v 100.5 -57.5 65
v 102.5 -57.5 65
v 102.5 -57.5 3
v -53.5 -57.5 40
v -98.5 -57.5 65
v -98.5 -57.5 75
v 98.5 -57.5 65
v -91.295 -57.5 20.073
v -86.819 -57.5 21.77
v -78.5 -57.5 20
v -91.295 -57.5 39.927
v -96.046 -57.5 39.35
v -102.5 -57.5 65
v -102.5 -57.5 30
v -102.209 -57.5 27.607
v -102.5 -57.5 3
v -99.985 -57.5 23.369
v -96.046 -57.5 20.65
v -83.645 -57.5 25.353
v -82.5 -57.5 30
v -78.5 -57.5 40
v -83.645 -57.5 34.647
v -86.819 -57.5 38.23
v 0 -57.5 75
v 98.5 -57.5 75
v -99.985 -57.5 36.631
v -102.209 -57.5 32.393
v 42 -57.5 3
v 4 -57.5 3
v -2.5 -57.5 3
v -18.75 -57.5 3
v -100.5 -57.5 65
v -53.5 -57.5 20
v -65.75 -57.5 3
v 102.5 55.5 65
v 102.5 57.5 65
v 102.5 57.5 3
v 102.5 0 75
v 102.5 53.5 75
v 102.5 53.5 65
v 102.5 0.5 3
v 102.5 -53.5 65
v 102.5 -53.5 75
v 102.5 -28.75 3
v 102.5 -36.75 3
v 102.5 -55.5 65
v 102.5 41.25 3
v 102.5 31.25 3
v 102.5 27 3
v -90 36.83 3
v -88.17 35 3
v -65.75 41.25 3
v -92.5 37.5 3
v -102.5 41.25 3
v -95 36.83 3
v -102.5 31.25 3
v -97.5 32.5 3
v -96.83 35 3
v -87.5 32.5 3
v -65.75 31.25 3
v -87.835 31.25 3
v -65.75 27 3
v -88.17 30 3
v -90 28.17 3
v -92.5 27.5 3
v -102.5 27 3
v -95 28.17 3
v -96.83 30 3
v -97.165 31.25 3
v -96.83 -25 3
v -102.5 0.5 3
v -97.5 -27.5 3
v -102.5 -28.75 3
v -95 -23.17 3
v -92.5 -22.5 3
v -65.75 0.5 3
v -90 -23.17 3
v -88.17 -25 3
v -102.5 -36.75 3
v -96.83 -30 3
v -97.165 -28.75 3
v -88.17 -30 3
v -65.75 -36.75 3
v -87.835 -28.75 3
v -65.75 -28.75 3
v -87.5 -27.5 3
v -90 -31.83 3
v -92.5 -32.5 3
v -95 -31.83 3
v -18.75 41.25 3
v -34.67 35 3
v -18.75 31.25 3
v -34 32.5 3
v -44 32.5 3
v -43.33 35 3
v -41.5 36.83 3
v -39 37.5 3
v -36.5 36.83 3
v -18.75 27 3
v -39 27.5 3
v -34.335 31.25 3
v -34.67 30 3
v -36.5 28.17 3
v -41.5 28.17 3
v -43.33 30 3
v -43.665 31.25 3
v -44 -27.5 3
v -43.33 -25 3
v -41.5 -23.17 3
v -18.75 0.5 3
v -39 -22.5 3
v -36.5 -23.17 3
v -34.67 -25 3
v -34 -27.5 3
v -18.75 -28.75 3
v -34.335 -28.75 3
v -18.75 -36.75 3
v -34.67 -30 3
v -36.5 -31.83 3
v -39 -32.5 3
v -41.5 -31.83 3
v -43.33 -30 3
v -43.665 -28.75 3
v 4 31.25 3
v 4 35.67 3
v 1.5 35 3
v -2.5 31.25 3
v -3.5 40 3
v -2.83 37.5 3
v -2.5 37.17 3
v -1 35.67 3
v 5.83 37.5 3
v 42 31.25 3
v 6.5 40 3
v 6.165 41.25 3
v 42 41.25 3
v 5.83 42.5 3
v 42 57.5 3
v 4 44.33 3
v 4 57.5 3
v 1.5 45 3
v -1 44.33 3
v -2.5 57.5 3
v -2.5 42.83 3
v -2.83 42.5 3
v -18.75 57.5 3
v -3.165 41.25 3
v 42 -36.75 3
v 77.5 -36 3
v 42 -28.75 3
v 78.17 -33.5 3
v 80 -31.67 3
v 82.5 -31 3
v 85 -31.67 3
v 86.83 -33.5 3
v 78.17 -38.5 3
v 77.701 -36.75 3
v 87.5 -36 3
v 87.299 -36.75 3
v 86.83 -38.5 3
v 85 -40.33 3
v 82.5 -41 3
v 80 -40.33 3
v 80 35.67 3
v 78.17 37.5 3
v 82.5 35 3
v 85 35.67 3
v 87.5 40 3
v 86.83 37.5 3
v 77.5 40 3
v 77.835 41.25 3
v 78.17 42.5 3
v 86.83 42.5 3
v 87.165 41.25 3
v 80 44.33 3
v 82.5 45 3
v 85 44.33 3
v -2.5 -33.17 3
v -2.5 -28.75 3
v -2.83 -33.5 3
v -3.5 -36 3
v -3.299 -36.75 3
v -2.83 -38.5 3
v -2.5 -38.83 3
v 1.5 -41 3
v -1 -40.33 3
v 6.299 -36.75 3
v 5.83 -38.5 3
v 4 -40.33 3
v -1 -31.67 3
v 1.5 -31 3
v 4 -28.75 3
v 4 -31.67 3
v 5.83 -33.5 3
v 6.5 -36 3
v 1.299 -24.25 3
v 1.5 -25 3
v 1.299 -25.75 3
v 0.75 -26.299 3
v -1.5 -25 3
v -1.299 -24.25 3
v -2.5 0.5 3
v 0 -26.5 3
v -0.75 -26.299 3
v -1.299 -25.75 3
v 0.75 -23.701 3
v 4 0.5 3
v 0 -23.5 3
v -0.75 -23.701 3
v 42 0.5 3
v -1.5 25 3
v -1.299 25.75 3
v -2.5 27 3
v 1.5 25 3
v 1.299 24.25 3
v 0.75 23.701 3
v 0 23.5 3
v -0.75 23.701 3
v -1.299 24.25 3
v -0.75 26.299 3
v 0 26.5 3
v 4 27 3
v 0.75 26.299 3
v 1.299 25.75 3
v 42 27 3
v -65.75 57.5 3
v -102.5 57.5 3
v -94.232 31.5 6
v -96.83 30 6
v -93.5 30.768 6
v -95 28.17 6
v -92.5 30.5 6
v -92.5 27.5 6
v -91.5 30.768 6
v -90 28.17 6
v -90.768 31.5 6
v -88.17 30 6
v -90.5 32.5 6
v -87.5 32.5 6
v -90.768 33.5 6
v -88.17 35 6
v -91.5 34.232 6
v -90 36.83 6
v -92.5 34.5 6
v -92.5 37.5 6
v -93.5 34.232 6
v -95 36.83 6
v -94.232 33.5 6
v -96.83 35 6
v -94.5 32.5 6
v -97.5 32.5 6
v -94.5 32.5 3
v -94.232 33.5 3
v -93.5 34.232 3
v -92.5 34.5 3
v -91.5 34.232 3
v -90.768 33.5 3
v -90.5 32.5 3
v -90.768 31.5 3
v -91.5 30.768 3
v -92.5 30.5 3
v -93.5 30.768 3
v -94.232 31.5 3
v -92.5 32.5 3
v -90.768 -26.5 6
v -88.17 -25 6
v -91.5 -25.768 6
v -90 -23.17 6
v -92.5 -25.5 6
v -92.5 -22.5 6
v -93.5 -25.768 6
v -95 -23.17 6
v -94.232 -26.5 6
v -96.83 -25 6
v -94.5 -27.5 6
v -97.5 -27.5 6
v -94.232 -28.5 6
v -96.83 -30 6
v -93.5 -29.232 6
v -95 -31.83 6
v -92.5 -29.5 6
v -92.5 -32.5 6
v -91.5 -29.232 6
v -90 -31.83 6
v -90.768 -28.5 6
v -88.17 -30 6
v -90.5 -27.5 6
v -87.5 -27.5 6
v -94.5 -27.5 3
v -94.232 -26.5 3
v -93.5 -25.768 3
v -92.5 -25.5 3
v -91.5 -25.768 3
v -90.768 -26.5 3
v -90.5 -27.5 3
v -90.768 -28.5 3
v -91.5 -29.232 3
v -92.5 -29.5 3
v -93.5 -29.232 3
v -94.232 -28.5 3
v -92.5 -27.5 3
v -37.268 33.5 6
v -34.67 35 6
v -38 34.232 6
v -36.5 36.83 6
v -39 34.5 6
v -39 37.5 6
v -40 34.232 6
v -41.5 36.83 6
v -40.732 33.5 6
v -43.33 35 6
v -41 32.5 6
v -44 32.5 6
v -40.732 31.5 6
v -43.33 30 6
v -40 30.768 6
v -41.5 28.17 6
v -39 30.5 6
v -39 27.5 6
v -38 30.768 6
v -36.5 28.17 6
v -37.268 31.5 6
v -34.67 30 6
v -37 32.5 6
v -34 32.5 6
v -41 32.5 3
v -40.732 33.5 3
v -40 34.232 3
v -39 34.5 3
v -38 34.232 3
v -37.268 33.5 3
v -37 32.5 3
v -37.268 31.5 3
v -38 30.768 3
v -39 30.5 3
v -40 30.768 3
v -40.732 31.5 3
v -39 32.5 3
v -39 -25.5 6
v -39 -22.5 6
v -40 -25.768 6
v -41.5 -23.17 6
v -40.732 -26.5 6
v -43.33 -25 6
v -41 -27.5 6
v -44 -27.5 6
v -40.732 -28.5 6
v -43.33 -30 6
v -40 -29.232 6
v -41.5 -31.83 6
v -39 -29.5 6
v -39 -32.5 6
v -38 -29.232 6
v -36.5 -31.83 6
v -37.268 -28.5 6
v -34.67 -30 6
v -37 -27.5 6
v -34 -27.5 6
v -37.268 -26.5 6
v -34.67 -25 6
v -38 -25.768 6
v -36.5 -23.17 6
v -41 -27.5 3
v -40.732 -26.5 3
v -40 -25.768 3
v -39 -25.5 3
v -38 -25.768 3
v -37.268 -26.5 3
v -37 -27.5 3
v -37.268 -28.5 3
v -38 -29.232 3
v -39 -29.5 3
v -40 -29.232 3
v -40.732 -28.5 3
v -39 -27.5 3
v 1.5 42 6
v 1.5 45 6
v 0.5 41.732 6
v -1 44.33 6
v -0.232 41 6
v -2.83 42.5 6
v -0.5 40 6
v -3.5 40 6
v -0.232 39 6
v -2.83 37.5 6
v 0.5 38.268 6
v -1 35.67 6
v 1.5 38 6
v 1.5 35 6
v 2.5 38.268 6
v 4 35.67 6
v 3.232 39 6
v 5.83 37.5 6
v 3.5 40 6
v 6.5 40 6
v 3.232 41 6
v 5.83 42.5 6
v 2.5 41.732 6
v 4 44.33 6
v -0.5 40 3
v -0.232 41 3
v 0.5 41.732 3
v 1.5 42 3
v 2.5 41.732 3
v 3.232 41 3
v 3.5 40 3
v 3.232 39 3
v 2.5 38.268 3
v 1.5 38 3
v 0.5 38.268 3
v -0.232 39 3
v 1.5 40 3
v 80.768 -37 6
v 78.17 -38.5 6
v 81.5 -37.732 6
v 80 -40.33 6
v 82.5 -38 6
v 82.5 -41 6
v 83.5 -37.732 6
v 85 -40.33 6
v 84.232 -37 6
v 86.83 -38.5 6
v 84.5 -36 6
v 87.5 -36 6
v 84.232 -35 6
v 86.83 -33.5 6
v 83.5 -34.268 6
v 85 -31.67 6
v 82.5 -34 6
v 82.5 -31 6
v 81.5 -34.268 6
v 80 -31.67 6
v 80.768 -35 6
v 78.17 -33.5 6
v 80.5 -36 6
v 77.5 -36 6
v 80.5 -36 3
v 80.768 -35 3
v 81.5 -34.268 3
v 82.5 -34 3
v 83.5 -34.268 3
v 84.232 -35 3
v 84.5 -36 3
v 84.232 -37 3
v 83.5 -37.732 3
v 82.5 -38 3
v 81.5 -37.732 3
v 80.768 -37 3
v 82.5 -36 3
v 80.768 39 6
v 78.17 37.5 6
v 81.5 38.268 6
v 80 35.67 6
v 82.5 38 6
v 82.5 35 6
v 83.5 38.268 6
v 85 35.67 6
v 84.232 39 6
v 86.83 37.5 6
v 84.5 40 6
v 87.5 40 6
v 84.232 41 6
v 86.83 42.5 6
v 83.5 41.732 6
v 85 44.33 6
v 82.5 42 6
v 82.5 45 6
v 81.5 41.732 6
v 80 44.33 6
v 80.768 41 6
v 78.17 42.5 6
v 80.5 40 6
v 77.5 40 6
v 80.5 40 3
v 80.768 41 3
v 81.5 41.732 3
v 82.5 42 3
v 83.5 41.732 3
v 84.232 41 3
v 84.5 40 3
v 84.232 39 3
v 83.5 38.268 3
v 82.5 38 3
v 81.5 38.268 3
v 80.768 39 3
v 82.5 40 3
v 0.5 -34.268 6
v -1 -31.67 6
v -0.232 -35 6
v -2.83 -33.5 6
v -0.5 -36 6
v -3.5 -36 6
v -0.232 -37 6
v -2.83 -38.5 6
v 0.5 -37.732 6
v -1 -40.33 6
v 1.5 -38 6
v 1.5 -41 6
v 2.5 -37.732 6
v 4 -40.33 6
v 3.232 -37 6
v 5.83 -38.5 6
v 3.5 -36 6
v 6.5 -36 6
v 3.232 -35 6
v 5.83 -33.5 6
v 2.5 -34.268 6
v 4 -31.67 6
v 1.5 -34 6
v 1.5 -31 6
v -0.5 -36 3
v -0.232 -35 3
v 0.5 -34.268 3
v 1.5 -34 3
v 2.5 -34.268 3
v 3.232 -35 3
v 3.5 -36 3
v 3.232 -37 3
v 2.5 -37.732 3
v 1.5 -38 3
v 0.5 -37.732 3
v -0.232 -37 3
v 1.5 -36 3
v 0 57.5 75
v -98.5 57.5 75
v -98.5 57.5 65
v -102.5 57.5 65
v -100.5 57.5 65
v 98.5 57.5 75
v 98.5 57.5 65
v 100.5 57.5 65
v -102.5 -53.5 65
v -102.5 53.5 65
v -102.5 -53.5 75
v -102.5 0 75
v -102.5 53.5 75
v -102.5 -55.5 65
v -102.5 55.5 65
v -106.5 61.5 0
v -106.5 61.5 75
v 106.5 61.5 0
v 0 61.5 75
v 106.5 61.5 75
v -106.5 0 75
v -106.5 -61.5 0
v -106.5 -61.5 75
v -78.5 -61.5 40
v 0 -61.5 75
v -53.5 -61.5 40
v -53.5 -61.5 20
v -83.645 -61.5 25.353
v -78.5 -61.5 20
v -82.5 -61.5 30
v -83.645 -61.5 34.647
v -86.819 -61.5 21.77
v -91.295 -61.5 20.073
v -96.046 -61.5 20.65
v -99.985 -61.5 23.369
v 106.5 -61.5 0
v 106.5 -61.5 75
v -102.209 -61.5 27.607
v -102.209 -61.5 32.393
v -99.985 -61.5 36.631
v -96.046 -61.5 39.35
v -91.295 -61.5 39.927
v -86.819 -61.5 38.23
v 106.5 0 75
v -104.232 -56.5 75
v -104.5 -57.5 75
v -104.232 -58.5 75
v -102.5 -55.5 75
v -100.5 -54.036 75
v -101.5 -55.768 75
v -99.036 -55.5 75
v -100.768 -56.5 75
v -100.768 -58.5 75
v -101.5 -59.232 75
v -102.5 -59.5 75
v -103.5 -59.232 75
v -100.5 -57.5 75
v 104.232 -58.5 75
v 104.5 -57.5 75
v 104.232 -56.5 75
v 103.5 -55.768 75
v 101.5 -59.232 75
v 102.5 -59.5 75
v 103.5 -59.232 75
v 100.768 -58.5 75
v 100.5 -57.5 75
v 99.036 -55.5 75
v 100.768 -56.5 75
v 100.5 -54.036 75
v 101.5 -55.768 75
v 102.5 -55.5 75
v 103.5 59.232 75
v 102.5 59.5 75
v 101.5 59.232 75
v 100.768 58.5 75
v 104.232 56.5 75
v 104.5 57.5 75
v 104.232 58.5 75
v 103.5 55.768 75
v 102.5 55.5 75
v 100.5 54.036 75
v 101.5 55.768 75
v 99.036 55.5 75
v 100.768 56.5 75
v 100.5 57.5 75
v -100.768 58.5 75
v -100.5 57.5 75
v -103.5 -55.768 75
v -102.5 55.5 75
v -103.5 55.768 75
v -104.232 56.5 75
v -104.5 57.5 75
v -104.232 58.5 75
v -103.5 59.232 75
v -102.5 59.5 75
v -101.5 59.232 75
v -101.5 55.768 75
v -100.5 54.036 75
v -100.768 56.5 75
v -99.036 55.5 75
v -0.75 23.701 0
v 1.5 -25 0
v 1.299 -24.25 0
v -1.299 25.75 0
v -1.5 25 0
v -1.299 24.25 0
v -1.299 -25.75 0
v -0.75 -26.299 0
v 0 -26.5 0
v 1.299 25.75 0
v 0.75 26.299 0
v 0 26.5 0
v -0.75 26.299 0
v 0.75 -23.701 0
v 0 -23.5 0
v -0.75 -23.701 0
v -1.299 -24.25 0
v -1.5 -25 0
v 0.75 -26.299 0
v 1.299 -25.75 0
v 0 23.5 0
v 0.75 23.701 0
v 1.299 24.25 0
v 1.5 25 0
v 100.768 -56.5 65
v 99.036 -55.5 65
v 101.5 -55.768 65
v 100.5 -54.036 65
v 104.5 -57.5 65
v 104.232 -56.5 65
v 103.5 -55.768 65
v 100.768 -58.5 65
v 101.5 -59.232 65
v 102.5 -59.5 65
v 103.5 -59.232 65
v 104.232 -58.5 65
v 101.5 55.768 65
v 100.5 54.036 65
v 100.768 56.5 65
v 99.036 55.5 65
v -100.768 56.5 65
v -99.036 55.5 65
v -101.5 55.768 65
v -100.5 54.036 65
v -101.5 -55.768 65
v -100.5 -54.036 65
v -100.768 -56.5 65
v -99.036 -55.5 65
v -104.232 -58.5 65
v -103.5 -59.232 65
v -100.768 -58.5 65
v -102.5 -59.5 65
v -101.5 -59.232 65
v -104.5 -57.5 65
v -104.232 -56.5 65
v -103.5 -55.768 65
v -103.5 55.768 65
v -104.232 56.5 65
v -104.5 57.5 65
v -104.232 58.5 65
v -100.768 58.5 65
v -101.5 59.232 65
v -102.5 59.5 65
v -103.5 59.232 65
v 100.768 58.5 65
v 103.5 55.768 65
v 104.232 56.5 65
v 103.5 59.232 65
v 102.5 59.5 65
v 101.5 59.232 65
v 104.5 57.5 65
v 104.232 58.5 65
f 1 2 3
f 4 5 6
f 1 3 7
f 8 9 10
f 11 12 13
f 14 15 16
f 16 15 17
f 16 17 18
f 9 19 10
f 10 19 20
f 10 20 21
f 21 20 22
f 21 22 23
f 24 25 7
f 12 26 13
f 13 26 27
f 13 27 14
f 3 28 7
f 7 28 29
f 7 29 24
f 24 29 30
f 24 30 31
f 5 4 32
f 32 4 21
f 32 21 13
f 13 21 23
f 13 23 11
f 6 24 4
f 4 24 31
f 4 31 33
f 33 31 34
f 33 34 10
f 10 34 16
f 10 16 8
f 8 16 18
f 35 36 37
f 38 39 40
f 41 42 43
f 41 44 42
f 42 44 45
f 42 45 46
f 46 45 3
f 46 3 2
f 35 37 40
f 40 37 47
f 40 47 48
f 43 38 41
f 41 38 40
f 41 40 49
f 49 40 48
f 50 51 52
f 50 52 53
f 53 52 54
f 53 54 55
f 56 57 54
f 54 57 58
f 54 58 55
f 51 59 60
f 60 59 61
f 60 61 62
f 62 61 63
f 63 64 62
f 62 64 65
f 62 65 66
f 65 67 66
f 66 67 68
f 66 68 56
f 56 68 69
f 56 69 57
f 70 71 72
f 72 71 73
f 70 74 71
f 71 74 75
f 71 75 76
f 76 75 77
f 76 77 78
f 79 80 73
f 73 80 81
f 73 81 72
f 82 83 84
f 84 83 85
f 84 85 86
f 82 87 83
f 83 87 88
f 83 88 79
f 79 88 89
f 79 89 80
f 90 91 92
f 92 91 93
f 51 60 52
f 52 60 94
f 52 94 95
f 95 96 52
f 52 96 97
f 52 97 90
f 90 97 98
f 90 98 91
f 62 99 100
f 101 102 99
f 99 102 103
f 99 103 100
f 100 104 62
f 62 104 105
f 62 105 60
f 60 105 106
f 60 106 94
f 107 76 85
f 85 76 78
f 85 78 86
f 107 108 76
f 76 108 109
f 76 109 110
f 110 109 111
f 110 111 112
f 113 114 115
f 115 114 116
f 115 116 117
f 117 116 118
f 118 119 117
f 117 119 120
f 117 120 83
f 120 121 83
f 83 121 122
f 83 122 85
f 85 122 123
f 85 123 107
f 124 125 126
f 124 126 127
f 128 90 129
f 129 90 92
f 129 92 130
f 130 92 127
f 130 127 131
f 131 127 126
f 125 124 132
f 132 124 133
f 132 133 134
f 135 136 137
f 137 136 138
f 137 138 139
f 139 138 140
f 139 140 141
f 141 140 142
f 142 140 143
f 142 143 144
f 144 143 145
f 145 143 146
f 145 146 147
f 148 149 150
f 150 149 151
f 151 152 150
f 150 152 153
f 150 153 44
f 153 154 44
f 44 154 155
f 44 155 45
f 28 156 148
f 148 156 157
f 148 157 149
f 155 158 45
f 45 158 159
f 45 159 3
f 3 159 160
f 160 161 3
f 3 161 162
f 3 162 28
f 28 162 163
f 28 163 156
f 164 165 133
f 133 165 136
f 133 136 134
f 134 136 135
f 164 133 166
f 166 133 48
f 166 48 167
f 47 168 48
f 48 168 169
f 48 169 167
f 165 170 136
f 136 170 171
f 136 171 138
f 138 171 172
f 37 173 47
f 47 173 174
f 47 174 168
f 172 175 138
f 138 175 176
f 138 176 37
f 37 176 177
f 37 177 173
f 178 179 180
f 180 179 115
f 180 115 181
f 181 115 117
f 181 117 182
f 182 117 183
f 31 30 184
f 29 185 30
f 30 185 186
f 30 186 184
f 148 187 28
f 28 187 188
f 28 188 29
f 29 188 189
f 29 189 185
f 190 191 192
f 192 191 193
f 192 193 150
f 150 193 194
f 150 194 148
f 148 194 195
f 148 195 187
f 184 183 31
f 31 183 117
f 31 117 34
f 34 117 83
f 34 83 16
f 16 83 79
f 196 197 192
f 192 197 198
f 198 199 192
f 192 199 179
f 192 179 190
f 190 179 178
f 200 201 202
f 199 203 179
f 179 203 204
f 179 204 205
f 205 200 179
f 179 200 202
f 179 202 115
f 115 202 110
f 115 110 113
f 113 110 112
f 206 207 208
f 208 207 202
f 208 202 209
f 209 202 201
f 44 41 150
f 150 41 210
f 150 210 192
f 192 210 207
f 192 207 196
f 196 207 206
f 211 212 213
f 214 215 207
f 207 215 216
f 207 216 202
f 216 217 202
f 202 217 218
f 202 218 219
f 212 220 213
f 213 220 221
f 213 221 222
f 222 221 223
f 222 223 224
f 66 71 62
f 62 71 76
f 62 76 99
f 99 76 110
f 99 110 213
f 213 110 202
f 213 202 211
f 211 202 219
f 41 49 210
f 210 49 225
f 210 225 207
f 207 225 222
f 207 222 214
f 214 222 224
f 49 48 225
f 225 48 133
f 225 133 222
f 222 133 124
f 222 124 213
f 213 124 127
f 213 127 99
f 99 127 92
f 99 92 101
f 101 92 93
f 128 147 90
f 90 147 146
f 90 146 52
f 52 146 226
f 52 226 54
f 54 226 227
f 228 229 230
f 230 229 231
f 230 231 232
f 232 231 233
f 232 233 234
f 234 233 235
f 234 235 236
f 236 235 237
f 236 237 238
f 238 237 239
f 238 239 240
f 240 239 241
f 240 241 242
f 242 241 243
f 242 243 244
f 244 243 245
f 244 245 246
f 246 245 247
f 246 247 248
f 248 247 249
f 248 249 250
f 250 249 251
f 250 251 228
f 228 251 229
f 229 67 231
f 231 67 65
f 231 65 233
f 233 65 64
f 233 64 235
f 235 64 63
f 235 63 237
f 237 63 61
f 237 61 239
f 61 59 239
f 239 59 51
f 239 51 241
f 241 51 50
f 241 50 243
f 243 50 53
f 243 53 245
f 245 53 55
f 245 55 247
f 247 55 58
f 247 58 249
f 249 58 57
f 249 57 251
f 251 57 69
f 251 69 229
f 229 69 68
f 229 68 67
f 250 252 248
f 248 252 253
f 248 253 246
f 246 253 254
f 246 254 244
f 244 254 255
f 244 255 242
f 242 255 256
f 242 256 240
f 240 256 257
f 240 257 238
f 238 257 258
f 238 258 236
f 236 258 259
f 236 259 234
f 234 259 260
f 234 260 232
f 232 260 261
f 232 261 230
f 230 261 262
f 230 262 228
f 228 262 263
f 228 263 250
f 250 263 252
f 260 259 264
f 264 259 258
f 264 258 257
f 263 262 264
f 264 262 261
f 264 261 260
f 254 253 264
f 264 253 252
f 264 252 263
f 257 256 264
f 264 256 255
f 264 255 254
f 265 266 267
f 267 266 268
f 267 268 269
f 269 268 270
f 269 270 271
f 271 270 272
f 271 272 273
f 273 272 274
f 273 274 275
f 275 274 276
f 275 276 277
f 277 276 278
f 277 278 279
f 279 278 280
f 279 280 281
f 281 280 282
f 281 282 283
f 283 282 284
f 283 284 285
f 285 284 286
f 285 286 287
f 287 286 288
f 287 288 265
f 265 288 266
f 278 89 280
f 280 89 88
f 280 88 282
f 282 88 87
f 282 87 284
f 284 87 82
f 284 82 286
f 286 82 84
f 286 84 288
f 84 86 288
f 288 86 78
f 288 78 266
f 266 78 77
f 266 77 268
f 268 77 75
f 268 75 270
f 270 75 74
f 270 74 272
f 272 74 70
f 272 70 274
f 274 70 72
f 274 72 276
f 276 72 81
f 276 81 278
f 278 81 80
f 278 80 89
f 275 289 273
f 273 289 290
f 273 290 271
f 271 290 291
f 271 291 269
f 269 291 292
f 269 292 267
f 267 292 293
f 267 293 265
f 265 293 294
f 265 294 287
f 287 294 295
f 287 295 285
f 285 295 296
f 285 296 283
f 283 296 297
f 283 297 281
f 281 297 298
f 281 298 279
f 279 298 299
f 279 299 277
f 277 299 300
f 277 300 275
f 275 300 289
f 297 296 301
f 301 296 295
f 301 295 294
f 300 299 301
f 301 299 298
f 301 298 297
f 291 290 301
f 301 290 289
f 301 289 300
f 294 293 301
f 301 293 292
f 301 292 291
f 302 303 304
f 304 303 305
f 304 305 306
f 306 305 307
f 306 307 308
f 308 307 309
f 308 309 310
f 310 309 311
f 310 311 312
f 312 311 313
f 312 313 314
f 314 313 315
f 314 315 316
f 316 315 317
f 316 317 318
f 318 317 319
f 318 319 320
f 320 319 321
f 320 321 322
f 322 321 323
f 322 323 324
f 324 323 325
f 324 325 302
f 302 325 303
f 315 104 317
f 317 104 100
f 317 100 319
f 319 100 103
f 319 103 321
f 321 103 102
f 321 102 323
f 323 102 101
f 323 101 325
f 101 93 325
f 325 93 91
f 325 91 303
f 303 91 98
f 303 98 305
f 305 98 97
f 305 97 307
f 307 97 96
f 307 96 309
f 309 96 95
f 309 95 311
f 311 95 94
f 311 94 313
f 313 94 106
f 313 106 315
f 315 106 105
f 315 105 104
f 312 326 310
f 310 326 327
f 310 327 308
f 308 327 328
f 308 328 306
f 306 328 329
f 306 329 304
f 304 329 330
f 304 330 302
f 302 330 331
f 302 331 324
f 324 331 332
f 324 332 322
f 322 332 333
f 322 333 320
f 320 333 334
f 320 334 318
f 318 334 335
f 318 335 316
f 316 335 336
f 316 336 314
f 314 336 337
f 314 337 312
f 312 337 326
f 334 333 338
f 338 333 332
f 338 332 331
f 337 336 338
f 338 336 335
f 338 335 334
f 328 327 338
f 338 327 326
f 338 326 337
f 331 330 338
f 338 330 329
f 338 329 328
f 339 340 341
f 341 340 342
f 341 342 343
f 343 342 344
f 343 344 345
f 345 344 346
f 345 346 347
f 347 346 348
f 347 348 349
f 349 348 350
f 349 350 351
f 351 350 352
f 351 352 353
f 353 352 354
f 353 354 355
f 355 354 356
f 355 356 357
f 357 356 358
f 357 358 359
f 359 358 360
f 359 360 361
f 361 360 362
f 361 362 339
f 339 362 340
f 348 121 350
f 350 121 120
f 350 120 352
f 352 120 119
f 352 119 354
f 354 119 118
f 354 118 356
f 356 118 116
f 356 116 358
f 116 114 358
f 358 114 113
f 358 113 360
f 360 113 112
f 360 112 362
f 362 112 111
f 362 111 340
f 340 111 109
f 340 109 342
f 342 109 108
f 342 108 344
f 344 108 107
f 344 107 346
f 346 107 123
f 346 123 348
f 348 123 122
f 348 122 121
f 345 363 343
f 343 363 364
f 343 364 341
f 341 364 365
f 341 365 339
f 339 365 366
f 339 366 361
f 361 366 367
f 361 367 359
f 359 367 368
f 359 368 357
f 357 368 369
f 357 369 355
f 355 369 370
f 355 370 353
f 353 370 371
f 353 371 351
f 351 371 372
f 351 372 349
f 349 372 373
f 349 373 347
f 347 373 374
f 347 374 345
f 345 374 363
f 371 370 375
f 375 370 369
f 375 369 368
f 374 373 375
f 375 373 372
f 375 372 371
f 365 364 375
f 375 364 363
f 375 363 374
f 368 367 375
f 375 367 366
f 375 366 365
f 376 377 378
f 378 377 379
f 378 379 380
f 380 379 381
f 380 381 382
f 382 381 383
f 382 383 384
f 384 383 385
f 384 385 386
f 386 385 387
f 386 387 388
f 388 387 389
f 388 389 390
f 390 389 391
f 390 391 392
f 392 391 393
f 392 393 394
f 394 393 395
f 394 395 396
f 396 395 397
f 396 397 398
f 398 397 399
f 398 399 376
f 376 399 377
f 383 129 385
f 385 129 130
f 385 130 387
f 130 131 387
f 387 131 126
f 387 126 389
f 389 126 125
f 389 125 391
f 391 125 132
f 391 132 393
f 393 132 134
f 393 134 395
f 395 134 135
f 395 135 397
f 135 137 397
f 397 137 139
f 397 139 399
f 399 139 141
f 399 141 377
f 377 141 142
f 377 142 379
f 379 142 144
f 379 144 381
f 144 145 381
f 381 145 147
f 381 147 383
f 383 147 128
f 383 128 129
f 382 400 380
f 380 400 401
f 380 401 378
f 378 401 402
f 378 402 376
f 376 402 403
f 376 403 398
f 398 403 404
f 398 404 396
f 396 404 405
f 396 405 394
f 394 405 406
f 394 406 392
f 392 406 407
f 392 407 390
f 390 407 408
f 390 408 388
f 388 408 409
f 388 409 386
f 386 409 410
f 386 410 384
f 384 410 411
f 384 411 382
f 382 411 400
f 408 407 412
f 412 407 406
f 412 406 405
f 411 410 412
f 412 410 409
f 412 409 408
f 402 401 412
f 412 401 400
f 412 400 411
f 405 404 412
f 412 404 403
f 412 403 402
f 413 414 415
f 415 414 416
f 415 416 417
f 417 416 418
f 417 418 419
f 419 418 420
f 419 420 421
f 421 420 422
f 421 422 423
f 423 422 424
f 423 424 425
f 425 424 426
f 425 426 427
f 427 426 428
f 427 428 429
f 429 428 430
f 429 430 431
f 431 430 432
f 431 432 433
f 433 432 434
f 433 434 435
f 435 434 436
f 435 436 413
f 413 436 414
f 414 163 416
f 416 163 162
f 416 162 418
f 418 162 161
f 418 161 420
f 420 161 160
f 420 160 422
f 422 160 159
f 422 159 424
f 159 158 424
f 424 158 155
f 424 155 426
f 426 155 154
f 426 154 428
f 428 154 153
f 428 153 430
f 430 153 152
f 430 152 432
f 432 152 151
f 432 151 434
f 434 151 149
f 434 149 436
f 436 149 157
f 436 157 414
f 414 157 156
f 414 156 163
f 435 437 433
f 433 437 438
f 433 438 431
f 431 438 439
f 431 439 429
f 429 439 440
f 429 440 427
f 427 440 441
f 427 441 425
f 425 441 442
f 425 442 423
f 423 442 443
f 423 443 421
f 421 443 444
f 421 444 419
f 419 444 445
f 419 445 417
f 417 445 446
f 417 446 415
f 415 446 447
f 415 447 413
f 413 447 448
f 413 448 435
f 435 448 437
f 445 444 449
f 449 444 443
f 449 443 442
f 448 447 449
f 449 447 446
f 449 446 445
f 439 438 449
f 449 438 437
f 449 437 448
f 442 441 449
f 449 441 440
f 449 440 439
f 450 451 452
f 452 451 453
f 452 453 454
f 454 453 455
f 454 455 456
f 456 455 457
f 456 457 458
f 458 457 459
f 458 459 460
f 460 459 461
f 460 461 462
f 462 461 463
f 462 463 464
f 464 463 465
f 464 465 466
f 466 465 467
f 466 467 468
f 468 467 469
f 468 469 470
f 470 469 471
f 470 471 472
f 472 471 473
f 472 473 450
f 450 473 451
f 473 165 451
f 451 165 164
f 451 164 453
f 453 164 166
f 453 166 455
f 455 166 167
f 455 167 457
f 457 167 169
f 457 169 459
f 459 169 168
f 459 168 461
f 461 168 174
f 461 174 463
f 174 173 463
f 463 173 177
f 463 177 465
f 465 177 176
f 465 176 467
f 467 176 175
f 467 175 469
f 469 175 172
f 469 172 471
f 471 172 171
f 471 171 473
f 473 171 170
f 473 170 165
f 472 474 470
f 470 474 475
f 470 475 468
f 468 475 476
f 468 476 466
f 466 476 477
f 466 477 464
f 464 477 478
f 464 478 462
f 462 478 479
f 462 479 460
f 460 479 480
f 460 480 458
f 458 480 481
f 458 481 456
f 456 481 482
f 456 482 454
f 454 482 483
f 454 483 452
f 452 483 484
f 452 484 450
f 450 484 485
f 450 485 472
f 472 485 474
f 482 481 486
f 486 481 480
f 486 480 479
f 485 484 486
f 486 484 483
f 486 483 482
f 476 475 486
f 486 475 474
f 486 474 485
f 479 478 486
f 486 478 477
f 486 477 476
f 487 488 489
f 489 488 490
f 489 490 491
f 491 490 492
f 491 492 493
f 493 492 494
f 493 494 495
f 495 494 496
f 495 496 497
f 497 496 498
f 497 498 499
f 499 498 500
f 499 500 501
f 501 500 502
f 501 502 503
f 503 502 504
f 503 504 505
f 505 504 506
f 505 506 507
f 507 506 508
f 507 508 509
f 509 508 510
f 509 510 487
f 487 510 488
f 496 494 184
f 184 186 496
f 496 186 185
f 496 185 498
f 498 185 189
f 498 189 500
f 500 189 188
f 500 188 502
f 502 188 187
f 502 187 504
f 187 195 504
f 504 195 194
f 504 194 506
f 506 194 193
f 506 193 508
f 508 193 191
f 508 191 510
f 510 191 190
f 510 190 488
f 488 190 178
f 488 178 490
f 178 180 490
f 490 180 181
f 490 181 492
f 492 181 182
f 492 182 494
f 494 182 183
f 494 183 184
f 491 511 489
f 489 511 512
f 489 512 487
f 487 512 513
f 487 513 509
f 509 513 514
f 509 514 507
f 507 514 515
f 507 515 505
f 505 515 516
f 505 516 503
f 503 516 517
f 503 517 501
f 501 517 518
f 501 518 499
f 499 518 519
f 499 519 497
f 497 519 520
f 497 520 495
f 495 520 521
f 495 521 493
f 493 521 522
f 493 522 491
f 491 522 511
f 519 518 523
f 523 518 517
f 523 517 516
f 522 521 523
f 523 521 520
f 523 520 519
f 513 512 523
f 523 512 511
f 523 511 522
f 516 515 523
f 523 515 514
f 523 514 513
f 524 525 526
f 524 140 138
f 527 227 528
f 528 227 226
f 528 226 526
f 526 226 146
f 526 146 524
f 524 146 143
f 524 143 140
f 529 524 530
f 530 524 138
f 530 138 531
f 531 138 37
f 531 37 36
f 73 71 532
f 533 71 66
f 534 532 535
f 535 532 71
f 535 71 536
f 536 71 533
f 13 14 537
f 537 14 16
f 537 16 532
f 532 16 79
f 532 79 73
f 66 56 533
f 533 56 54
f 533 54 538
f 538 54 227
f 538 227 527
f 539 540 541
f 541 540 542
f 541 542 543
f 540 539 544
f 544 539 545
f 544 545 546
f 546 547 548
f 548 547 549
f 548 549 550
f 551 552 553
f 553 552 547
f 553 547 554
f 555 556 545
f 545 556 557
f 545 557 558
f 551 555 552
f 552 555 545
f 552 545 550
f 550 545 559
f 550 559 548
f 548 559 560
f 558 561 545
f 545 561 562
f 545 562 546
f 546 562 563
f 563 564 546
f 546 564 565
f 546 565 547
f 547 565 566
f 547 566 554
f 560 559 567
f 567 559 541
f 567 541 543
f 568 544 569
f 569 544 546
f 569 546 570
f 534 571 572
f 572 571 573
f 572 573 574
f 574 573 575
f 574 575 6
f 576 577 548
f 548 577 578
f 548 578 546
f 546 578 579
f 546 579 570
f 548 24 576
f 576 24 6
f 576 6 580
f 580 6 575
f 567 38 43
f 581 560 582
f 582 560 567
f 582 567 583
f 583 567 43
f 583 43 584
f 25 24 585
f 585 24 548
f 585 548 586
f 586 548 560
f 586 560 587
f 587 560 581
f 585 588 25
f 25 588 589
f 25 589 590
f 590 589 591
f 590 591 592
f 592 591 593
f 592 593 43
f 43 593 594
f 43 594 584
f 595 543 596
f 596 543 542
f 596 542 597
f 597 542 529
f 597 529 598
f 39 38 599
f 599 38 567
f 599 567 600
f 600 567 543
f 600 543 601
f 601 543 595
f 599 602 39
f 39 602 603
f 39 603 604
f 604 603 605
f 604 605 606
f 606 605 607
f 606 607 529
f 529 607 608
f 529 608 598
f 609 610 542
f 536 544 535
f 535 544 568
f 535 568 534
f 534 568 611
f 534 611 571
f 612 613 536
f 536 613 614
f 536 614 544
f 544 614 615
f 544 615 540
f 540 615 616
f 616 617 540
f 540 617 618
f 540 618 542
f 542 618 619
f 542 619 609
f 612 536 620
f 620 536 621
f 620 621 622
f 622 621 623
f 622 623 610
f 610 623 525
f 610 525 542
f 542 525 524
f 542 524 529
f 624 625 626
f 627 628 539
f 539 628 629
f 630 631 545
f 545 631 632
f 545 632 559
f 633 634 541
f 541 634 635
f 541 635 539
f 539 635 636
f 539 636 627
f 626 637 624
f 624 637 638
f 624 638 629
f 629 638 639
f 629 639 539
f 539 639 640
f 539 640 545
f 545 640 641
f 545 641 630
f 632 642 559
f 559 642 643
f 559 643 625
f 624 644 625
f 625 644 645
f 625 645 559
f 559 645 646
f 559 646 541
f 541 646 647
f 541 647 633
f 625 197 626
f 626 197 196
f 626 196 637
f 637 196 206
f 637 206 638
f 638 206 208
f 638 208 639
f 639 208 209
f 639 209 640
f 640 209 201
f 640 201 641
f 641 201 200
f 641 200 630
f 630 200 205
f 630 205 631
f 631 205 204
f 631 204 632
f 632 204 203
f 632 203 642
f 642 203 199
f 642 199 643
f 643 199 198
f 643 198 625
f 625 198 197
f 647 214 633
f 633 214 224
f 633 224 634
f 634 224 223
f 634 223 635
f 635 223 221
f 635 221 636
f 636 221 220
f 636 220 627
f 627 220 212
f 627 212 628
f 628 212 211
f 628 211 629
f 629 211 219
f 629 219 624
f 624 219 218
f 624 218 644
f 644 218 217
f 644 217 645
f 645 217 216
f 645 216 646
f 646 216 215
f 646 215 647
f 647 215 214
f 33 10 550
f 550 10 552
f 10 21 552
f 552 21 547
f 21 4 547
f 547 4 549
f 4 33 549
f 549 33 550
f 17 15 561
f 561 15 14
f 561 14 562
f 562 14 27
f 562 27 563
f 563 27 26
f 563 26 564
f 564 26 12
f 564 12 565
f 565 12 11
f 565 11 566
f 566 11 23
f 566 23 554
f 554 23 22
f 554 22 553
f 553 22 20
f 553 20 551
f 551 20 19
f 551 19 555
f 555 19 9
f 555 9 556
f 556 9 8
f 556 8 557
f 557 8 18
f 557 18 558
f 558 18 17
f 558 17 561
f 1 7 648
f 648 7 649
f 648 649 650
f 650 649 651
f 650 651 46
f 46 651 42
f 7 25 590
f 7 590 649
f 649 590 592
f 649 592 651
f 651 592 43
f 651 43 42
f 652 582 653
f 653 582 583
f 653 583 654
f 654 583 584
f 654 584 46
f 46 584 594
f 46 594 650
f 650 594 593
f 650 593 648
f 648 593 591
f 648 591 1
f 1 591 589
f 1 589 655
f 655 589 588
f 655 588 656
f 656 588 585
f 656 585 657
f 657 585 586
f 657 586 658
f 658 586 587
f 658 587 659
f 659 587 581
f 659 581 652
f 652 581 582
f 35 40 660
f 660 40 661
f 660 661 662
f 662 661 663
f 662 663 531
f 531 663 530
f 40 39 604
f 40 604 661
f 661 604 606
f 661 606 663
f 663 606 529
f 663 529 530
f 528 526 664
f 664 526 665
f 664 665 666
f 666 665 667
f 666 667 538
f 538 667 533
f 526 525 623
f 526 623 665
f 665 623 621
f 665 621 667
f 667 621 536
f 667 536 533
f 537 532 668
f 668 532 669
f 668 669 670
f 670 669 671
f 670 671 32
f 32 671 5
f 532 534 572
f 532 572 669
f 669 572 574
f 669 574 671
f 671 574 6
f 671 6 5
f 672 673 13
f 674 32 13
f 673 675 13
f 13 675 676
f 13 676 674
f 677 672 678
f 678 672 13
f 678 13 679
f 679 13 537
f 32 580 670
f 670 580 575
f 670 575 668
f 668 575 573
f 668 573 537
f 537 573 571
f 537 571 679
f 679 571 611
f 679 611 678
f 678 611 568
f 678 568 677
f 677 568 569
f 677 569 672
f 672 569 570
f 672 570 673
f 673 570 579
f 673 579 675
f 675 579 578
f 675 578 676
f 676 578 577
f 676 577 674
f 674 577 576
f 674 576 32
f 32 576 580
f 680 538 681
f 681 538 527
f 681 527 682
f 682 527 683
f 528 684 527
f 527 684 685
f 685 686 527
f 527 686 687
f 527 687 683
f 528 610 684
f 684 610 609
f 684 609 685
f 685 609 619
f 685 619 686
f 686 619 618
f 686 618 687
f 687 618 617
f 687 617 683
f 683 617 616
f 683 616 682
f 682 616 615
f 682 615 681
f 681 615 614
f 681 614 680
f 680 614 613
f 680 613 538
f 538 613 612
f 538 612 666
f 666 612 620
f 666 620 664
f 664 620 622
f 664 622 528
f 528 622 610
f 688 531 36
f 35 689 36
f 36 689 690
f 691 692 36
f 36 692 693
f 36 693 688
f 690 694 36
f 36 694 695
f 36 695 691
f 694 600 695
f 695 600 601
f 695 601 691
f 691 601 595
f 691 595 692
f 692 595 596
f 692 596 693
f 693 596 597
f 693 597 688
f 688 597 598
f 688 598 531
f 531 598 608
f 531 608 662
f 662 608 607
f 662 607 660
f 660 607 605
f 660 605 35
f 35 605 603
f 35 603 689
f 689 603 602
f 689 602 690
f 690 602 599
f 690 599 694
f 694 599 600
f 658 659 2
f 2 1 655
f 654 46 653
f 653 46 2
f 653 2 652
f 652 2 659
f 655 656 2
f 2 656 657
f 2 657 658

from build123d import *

# Parameters (mm, degrees)
SKETCH1_W                           = 205
SKETCH1_H                           = 115
BOSS_EXTRUDE1_DEPTH                 = 3
SKETCH2_R                           = 5
SKETCH2_R_2                         = 2
BOSS_EXTRUDE2_DEPTH                 = 3
SKETCH3_R                           = 5
SKETCH3_R_2                         = 2
BOSS_EXTRUDE3_DEPTH                 = 3
SKETCH5_W                           = 213
SKETCH5_H                           = 123
SKETCH5_W_2                         = 205
SKETCH5_H_2                         = 115
BOSS_EXTRUDE4_DEPTH                 = 75
F_3_0MM_CLEARANCE_DOWEL_HOLE1_D     = 3
F_3_0MM_CLEARANCE_DOWEL_HOLE1_DEPTH = 30
F_3_0MM_CLEARANCE_DOWEL_HOLE1_TIP   = 0.901290929
SKETCH10_W                          = 25
SKETCH10_H                          = 20
CUT_EXTRUDE1_DEPTH                  = 4
SKETCH11_R                          = 10
CUT_EXTRUDE2_DEPTH                  = 4
SKETCH12_R                          = 4
SKETCH12_R_2                        = 2
BOSS_EXTRUDE5_DEPTH                 = 10
SKETCH13_R                          = 2
CUT_EXTRUDE3_DEPTH                  = 10


with BuildPart() as part:
    # Sketch1 → Boss-Extrude1 (new body)
    with BuildSketch(Plane.XY):
        Rectangle(SKETCH1_W, SKETCH1_H)
    extrude(amount=BOSS_EXTRUDE1_DEPTH)

    # Sketch2 → Boss-Extrude2 (add)
    with BuildSketch(Plane.XY.offset(3)):
        with Locations((-92.5, 32.5)):
            Circle(SKETCH2_R)
        with Locations((-92.5, 32.5)):
            Circle(SKETCH2_R_2, mode=Mode.SUBTRACT)
        with Locations((-92.5, -27.5)):
            Circle(SKETCH2_R)
        with Locations((-92.5, -27.5)):
            Circle(SKETCH2_R_2, mode=Mode.SUBTRACT)
        with Locations((-39, 32.5)):
            Circle(SKETCH2_R)
        with Locations((-39, 32.5)):
            Circle(SKETCH2_R_2, mode=Mode.SUBTRACT)
        with Locations((-39, -27.5)):
            Circle(SKETCH2_R)
        with Locations((-39, -27.5)):
            Circle(SKETCH2_R_2, mode=Mode.SUBTRACT)
    extrude(amount=BOSS_EXTRUDE2_DEPTH)

    # Sketch3 → Boss-Extrude3 (add)
    with BuildSketch(Plane.XY.offset(3)):
        with Locations((1.5, 40)):
            Circle(SKETCH3_R)
        with Locations((1.5, 40)):
            Circle(SKETCH3_R_2, mode=Mode.SUBTRACT)
        with Locations((82.5, -36)):
            Circle(SKETCH3_R)
        with Locations((82.5, -36)):
            Circle(SKETCH3_R_2, mode=Mode.SUBTRACT)
        with Locations((82.5, 40)):
            Circle(SKETCH3_R)
        with Locations((82.5, 40)):
            Circle(SKETCH3_R_2, mode=Mode.SUBTRACT)
        with Locations((1.5, -36)):
            Circle(SKETCH3_R)
        with Locations((1.5, -36)):
            Circle(SKETCH3_R_2, mode=Mode.SUBTRACT)
    extrude(amount=BOSS_EXTRUDE3_DEPTH)

    # Sketch5 → Boss-Extrude4 (add)
    with BuildSketch(Plane(origin=(0, 0, 0), x_dir=(-1, 0, 0), z_dir=(0, 0, -1))):
        Rectangle(SKETCH5_W, SKETCH5_H)
        Rectangle(SKETCH5_W_2, SKETCH5_H_2, mode=Mode.SUBTRACT)
    extrude(amount=-BOSS_EXTRUDE4_DEPTH)

    # Ø3.0mm Clearance Dowel Hole1
    with Locations(Plane.XY.offset(3)):
        with Locations((0, 25), (0, -25)):
            Hole(F_3_0MM_CLEARANCE_DOWEL_HOLE1_D / 2, depth=F_3_0MM_CLEARANCE_DOWEL_HOLE1_DEPTH)
            with Locations((0, 0, -(F_3_0MM_CLEARANCE_DOWEL_HOLE1_DEPTH + F_3_0MM_CLEARANCE_DOWEL_HOLE1_TIP / 2))):  # 118° drill point
                Cone(0, F_3_0MM_CLEARANCE_DOWEL_HOLE1_D / 2, F_3_0MM_CLEARANCE_DOWEL_HOLE1_TIP, mode=Mode.SUBTRACT)

    # Sketch10 → Cut-Extrude1 (cut)
    with BuildSketch(Plane.XZ.offset(61.5)):
        with Locations((-66, 30)):
            Rectangle(SKETCH10_W, SKETCH10_H)
    extrude(amount=-CUT_EXTRUDE1_DEPTH, mode=Mode.SUBTRACT)

    # Sketch11 → Cut-Extrude2 (cut)
    with BuildSketch(Plane.XZ.offset(61.5)):
        with Locations((-92.5, 30)):
            Circle(SKETCH11_R)
    extrude(amount=-CUT_EXTRUDE2_DEPTH, mode=Mode.SUBTRACT)

    # Sketch12 → Boss-Extrude5 (add)
    with BuildSketch(Plane.XY.offset(75)):
        with Locations((102.5, -57.5)):
            Circle(SKETCH12_R)
        with Locations((102.5, -57.5)):
            Circle(SKETCH12_R_2, mode=Mode.SUBTRACT)
        with Locations((102.5, 57.5)):
            Circle(SKETCH12_R)
        with Locations((-102.5, 57.5)):
            Circle(SKETCH12_R)
        with Locations((-102.5, -57.5)):
            Circle(SKETCH12_R)
    extrude(amount=-BOSS_EXTRUDE5_DEPTH)

    # Sketch13 → Cut-Extrude3 (cut)
    with BuildSketch(Plane.XY.offset(75)):
        with Locations((102.5, -57.5)):
            Circle(SKETCH13_R)
        with Locations((102.5, 57.5)):
            Circle(SKETCH13_R)
        with Locations((-102.5, 57.5)):
            Circle(SKETCH13_R)
        with Locations((-102.5, -57.5)):
            Circle(SKETCH13_R)
    extrude(amount=-CUT_EXTRUDE3_DEPTH, mode=Mode.SUBTRACT)


solid = part.part
